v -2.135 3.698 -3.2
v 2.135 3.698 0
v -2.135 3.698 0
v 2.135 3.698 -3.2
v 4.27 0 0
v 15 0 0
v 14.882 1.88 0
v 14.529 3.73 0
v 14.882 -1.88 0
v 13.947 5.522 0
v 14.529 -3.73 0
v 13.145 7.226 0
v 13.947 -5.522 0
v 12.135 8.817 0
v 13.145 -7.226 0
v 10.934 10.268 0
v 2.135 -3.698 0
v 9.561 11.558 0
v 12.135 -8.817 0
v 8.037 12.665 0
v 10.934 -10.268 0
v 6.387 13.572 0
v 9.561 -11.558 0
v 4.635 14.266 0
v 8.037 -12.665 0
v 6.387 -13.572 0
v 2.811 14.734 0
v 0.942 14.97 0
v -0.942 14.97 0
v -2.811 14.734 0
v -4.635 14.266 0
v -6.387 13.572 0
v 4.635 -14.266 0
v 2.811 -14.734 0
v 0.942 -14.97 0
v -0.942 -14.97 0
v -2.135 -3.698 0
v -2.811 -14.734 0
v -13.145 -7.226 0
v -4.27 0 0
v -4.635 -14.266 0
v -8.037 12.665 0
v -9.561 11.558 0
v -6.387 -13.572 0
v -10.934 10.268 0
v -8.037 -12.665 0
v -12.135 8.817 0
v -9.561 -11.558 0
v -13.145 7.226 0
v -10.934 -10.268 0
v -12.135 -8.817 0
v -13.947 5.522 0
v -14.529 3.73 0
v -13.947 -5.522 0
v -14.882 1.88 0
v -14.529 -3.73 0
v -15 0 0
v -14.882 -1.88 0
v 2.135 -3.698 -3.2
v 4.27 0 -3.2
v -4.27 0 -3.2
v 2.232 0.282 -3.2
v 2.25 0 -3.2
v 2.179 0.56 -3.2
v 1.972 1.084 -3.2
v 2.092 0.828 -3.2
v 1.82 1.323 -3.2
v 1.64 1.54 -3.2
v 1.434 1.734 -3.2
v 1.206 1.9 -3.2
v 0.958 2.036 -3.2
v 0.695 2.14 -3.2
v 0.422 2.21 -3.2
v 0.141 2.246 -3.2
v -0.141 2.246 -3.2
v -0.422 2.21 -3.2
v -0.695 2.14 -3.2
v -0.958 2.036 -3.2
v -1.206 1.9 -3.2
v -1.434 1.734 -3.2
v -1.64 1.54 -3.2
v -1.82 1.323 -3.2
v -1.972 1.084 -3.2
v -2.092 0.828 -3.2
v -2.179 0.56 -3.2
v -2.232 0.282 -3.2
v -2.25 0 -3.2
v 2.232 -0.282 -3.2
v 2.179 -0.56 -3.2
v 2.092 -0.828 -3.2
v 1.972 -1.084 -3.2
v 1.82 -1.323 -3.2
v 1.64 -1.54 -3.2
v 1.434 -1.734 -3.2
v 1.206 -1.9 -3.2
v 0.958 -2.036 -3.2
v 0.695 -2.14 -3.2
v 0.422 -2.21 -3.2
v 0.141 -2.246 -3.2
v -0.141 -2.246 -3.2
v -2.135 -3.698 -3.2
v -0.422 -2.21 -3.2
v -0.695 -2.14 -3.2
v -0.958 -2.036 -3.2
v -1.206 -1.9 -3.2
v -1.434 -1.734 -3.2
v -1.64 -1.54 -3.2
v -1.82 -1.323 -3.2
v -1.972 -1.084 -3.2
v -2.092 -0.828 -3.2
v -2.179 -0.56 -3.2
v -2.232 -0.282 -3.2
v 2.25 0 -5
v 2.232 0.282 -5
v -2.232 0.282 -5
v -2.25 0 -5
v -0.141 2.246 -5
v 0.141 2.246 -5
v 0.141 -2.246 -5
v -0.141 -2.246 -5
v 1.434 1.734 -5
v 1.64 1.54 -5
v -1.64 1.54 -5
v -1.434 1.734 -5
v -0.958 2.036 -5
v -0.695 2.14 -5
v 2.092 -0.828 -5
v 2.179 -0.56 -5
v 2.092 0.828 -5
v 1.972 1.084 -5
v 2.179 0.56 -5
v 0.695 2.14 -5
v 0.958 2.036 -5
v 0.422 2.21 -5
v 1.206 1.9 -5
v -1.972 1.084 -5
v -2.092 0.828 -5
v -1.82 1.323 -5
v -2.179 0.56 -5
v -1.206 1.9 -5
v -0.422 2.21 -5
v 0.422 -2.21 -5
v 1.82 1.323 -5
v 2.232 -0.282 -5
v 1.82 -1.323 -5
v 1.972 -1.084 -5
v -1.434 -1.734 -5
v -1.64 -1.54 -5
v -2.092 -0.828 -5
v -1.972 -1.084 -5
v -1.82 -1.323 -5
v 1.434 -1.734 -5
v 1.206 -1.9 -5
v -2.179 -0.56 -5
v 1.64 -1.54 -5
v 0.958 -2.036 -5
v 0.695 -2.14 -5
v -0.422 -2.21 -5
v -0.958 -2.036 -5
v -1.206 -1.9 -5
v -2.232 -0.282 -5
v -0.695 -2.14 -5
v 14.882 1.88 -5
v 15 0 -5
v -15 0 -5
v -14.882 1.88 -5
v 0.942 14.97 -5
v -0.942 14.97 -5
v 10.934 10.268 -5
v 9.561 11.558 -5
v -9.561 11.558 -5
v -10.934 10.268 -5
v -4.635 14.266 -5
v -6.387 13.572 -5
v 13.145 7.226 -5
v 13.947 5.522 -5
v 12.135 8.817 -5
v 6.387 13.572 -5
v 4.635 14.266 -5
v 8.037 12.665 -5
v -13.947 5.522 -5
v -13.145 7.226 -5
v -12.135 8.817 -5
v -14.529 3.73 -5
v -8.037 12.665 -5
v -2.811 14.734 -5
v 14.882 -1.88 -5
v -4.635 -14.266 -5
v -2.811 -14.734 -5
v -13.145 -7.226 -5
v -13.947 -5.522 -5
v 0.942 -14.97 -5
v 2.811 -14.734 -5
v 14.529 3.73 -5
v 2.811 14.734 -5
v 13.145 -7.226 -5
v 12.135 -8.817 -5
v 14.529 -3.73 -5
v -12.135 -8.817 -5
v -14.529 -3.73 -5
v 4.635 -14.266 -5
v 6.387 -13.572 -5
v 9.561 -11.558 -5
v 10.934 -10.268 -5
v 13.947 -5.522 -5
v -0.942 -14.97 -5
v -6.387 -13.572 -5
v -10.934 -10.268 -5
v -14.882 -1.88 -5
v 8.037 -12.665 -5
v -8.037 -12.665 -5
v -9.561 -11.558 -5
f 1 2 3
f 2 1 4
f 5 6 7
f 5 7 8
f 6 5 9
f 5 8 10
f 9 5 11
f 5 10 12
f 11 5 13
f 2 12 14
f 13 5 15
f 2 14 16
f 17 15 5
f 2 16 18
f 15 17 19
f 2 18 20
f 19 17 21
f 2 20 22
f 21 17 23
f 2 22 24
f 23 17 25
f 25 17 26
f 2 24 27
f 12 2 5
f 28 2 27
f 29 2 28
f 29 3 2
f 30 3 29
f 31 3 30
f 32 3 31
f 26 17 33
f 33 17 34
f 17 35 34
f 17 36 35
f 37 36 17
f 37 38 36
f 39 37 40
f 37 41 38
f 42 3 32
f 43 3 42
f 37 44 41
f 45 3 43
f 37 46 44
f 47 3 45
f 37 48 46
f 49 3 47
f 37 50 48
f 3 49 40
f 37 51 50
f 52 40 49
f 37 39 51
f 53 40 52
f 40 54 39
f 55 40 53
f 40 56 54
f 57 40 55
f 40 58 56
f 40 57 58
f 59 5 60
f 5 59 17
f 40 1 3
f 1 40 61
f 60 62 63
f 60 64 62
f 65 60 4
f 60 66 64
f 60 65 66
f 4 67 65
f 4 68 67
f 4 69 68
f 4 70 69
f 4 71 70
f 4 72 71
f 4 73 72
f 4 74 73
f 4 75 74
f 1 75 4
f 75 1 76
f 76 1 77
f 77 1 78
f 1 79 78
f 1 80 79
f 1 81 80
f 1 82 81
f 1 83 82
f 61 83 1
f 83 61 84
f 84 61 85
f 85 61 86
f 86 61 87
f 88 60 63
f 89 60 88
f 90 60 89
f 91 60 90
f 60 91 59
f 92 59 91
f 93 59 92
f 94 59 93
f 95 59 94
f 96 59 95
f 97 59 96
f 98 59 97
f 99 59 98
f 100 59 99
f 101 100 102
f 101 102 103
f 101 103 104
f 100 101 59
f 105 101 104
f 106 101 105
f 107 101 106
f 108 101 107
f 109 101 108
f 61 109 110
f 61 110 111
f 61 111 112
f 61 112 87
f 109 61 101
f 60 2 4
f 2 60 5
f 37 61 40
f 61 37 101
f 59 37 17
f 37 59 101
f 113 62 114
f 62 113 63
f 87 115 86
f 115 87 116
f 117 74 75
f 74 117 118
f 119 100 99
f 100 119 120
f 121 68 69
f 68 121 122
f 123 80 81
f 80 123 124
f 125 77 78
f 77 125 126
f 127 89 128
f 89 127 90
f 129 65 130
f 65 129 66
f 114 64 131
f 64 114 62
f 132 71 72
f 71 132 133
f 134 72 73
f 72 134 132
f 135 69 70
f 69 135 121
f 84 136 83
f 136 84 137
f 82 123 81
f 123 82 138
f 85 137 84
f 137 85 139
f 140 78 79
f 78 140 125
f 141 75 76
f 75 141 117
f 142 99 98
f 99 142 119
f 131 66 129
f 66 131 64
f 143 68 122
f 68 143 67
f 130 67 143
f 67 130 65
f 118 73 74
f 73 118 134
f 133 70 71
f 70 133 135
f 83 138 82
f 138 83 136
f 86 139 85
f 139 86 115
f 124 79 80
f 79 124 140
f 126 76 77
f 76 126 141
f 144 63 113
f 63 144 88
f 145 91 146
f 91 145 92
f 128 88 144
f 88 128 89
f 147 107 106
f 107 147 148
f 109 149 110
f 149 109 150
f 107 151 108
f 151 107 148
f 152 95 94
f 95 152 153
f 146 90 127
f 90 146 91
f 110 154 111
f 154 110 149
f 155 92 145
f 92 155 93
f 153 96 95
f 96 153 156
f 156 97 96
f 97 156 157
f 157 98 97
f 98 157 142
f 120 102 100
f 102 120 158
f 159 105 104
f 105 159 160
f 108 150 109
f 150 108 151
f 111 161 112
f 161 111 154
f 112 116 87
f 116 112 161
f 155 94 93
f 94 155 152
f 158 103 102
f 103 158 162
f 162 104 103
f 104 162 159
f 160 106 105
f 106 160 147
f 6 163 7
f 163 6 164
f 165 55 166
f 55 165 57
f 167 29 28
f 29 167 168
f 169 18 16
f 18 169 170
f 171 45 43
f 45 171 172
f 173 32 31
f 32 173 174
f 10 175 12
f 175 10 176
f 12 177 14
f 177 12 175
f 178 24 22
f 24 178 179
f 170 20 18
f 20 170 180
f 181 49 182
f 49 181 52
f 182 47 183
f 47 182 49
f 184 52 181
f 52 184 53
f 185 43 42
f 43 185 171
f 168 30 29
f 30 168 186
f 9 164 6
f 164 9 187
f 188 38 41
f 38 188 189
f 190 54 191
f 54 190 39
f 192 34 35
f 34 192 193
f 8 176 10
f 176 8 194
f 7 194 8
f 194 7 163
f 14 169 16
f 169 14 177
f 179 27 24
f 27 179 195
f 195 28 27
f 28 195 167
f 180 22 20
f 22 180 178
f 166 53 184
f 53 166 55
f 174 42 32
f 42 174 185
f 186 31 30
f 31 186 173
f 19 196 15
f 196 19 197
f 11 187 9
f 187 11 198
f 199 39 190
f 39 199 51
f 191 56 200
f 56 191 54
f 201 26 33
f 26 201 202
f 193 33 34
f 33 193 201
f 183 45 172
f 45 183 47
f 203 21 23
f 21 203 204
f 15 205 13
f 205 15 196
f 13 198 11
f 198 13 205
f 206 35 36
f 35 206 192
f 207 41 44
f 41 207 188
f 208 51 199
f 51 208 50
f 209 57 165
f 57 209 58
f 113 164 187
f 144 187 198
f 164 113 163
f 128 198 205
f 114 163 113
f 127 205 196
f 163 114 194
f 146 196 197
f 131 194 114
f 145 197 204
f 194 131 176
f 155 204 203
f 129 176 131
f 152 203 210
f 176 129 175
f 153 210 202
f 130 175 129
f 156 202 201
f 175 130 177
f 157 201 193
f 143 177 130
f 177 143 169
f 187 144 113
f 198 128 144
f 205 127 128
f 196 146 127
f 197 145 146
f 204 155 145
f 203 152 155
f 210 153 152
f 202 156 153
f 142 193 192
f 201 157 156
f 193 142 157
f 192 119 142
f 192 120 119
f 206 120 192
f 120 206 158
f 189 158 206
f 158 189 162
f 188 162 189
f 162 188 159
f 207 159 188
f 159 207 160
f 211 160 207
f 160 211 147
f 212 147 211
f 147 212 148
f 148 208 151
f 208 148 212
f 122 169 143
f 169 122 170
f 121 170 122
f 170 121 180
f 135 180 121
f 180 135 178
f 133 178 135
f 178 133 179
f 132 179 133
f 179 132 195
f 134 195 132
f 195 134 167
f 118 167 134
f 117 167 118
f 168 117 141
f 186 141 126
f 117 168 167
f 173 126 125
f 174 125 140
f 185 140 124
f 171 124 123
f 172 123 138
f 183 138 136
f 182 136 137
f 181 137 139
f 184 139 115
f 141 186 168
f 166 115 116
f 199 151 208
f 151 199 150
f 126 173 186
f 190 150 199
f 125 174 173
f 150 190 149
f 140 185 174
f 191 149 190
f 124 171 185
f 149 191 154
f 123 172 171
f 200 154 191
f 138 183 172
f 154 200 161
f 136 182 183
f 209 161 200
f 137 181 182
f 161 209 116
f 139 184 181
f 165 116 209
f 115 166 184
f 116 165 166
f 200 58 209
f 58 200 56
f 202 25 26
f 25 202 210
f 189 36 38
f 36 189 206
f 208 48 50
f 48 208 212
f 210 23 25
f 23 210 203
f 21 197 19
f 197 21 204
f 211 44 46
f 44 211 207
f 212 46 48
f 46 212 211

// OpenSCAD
$fn = 50;


difference() {
	union() {
		translate(v = [0, 0, -5.0000000000]) {
			cylinder(h = 5.0000000000, r = 15.0000000000);
		}
	}
	union() {
		translate(v = [0, 0, 0]) {
			rotate(a = [0, 0, 0]) {
				difference() {
					union() {
						translate(v = [0, 0, -3.2000000000]) {
							linear_extrude(height = 3.2000000000) {
								polygon(points = [[4.2698000000, 0.0000000000], [2.1349000000, 3.6977552691], [-2.1349000000, 3.6977552691], [-4.2698000000, 0.0000000000], [-2.1349000000, -3.6977552691], [2.1349000000, -3.6977552691]]);
							}
						}
					}
					union();
				}
			}
		}
		#translate(v = [0, 0, -100.0000000000]) {
			cylinder(h = 200, r = 2.2500000000);
		}
	}
}
